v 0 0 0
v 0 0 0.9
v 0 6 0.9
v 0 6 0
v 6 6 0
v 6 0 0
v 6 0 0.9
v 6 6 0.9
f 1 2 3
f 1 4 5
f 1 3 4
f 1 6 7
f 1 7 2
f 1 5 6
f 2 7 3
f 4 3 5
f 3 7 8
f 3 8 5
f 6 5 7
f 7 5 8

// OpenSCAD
/* Warning, this is a very basic generator with a lot of approximation 
input data : [VQFN, 8DW, 6x6x0.9mm, 40, , B, C04-00658B]
generated by com.zoubworld.electronics.cad.model3d.Basic
Date : Sun Feb 15 10:50:49 CET 2026
*/

//body
color("black")
translate([0,0,0])
cube([6.0,6.0,0.9], center=false);
